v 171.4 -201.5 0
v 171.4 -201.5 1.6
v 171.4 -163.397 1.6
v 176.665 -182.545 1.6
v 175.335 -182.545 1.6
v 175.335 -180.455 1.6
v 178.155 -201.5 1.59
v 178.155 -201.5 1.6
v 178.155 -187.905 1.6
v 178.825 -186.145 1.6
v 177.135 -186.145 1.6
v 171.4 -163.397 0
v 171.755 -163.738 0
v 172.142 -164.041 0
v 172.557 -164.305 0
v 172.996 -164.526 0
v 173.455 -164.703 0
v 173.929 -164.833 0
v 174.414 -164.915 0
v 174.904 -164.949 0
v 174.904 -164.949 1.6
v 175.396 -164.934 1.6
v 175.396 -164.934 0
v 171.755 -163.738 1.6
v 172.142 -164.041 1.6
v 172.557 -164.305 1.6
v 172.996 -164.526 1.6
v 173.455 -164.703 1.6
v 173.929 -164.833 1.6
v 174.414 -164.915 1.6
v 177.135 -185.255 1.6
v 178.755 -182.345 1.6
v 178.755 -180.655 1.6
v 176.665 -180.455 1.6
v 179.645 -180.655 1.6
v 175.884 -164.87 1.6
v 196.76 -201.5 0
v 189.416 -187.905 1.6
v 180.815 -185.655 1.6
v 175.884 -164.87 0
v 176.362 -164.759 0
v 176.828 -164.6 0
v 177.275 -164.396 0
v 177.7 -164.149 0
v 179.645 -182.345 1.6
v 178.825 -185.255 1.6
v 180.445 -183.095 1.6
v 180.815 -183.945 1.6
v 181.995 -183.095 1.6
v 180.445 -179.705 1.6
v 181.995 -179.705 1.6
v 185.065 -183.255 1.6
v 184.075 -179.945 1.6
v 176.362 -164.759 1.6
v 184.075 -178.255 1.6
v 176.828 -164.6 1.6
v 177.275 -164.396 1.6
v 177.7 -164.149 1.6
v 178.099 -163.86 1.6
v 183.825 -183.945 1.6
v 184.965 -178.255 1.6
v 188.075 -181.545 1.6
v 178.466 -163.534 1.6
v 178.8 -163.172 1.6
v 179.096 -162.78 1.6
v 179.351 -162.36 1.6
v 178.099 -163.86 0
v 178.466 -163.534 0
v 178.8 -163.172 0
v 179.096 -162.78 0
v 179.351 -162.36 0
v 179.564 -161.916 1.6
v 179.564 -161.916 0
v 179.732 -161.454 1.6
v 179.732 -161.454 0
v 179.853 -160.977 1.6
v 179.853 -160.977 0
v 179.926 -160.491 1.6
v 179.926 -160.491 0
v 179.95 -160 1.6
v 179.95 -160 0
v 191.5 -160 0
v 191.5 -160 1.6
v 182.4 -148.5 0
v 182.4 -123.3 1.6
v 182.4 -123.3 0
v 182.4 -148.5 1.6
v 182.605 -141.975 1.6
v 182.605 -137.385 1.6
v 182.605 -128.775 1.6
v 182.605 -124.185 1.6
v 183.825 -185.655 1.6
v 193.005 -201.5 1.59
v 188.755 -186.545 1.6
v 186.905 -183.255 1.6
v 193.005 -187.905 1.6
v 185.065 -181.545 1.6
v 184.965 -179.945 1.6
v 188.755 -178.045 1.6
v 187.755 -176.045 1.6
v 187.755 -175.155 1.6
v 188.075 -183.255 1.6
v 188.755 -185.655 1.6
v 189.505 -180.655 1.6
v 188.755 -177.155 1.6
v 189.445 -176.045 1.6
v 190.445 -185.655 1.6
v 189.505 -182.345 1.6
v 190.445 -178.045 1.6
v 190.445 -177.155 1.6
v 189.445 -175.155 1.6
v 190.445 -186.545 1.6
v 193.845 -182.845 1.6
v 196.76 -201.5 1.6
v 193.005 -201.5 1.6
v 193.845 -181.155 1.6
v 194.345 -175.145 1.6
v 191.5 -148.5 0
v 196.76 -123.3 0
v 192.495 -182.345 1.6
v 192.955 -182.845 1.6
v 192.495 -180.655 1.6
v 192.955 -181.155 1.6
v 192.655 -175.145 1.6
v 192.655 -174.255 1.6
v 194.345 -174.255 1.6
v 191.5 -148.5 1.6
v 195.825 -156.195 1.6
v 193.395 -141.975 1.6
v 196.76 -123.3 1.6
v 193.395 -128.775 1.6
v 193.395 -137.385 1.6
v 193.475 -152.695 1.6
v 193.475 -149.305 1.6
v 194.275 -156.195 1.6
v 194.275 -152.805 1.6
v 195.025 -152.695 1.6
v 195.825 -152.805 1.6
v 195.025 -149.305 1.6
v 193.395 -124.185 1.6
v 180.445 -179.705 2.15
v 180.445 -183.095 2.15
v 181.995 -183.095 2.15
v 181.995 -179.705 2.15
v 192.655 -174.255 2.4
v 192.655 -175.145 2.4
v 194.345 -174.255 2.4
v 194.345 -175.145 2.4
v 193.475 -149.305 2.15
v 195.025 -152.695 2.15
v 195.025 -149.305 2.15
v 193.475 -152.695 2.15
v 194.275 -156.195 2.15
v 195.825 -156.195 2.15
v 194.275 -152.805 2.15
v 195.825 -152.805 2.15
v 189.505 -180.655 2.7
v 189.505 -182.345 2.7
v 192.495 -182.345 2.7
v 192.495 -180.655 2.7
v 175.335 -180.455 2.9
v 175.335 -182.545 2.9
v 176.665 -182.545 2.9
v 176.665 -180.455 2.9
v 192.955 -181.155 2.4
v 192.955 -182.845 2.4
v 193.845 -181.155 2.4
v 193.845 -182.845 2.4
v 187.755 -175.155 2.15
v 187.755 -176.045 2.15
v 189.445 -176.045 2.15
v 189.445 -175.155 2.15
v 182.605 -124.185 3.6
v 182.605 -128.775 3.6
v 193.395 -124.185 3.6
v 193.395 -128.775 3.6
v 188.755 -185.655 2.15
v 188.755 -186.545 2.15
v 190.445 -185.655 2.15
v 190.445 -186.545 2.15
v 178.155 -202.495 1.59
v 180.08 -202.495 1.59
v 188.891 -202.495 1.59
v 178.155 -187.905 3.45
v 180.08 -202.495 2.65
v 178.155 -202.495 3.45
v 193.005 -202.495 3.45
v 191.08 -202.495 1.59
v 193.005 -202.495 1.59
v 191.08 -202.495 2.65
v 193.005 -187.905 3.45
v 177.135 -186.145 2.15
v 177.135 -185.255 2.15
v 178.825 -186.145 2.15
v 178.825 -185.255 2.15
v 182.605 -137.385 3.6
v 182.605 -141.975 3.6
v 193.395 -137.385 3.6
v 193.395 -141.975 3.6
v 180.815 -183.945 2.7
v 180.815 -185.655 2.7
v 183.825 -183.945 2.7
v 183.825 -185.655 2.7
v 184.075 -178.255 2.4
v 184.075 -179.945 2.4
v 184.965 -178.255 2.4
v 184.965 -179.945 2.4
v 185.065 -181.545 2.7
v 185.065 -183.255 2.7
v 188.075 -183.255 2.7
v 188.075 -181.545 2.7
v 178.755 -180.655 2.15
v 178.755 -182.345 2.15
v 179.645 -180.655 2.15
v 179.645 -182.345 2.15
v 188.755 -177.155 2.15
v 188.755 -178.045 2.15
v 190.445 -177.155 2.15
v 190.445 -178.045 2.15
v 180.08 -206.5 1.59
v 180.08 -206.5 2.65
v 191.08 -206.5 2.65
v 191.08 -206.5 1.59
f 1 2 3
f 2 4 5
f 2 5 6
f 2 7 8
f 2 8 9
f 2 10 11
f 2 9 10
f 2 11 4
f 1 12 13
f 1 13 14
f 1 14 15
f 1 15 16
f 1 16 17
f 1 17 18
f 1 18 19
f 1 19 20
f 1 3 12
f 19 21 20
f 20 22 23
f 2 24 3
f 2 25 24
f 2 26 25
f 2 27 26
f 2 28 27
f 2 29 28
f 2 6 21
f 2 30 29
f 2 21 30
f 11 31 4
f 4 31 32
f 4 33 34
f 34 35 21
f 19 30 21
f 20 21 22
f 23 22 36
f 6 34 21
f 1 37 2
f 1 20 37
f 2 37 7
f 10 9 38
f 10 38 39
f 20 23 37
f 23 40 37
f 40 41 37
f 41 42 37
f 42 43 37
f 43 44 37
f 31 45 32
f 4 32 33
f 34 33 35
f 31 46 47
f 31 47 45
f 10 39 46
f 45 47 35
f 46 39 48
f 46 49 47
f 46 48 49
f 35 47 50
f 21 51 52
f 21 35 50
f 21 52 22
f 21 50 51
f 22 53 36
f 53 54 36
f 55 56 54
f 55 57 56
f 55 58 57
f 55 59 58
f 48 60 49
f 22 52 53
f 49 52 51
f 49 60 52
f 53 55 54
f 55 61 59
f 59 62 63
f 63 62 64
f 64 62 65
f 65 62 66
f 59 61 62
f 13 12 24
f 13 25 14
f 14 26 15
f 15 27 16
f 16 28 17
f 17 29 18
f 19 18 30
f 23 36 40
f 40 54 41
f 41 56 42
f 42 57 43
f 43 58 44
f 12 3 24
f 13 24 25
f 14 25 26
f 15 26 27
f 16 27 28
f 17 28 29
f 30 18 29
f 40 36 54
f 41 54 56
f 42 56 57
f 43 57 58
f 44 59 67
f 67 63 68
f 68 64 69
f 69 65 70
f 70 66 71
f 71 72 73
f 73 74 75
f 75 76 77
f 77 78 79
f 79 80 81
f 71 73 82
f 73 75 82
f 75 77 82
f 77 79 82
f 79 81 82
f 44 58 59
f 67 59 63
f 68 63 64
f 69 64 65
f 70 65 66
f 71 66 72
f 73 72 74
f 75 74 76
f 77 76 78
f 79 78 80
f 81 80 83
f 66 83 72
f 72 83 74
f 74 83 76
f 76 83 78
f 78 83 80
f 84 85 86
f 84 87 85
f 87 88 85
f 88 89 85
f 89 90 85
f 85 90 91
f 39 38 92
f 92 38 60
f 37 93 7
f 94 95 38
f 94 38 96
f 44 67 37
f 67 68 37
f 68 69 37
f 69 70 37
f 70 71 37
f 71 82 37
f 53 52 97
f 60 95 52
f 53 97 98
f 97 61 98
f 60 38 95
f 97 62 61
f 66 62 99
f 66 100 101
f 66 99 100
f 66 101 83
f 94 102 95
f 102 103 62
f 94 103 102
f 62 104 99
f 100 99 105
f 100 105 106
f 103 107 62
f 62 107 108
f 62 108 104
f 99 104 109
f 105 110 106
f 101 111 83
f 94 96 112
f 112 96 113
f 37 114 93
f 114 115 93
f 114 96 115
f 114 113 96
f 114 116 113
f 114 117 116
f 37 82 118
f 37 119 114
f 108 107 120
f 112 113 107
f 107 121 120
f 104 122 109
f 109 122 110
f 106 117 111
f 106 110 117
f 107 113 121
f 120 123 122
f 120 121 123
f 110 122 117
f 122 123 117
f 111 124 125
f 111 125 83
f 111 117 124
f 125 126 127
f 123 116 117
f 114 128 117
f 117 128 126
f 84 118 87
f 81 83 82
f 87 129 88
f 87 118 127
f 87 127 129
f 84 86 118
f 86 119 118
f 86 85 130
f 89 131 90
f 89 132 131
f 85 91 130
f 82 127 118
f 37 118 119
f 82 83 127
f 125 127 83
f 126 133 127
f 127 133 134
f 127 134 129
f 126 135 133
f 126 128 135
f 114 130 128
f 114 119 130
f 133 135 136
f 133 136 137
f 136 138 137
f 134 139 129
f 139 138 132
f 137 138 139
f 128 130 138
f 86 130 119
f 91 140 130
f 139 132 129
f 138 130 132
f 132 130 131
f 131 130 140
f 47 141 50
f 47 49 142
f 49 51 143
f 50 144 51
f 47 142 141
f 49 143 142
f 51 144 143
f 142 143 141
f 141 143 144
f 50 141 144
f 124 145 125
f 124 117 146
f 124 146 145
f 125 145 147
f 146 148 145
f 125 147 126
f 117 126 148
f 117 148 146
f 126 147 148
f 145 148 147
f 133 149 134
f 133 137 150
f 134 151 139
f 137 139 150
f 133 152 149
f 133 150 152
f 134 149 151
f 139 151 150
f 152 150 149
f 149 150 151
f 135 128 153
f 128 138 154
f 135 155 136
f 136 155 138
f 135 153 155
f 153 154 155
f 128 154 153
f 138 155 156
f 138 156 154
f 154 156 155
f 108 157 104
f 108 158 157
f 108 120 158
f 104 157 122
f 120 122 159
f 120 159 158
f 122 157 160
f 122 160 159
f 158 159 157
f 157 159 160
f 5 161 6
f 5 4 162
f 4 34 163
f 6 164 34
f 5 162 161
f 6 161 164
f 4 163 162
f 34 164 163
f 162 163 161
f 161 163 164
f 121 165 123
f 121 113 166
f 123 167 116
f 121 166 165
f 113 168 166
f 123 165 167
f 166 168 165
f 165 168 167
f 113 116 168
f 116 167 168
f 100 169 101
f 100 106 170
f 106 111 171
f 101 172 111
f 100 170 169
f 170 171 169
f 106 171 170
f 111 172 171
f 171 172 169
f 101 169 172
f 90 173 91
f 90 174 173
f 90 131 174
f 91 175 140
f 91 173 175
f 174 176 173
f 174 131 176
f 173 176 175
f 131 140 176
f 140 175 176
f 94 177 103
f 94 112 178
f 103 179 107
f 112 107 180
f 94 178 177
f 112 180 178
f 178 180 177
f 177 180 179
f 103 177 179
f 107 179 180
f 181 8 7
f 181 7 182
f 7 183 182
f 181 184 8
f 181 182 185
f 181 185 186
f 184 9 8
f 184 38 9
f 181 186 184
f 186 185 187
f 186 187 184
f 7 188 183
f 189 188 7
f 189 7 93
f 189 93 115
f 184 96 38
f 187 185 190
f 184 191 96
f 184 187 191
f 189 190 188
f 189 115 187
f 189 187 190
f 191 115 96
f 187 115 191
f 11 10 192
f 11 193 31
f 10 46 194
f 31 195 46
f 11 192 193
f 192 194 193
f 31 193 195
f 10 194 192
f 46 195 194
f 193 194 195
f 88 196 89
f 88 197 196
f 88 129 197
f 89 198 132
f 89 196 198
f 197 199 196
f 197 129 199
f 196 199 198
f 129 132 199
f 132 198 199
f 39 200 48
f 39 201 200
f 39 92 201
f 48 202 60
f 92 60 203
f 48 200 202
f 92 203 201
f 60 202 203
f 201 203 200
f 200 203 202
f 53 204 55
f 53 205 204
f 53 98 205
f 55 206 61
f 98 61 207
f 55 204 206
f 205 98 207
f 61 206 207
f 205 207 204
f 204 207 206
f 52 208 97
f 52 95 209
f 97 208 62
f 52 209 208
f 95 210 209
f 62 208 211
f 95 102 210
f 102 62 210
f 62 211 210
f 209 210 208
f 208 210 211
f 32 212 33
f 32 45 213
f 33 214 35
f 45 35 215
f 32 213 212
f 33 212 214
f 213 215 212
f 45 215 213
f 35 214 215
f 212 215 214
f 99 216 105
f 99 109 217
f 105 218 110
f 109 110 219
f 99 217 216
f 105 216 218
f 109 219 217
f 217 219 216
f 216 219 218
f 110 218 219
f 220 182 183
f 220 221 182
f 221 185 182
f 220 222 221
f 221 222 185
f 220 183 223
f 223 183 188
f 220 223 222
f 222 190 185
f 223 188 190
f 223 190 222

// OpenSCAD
// generated by make_mockup.py: the SD board's outline and its parts as blocks
union() {
  linear_extrude(1.6) polygon([[196.76, -201.5], [171.4, -201.5], [171.4, -163.397], [171.755, -163.738], [172.142, -164.041], [172.557, -164.305], [172.996, -164.526], [173.455, -164.703], [173.929, -164.833], [174.414, -164.915], [174.904, -164.949], [175.396, -164.934], [175.884, -164.87], [176.362, -164.759], [176.828, -164.6], [177.275, -164.396], [177.7, -164.149], [178.099, -163.86], [178.466, -163.534], [178.8, -163.172], [179.096, -162.78], [179.351, -162.36], [179.564, -161.916], [179.732, -161.454], [179.853, -160.977], [179.926, -160.491], [179.95, -160.0], [191.5, -160.0], [191.5, -148.5], [182.4, -148.5], [182.4, -123.3], [196.76, -123.3]]);
  translate([180.445, -183.095, 1.59]) cube([1.550, 3.390, 0.56]);  // R1
  translate([192.655, -175.145, 1.59]) cube([1.690, 0.890, 0.81]);  // FB1
  translate([193.475, -152.695, 1.59]) cube([1.550, 3.390, 0.56]);  // R5
  translate([194.275, -156.195, 1.59]) cube([1.550, 3.390, 0.56]);  // R6
  translate([189.505, -182.345, 1.59]) cube([2.990, 1.690, 1.11]);  // U1
  translate([175.335, -182.545, 1.59]) cube([1.330, 2.090, 1.31]);  // C1
  translate([192.955, -182.845, 1.59]) cube([0.890, 1.690, 0.81]);  // C2
  translate([187.755, -176.045, 1.59]) cube([1.690, 0.890, 0.56]);  // R8
  translate([182.605, -128.775, 1.59]) cube([10.790, 4.590, 2.01]);  // J3
  translate([188.755, -186.545, 1.59]) cube([1.690, 0.890, 0.56]);  // R2
  translate([178.155, -202.495, 1.59]) cube([14.850, 14.590, 1.86]);  // J1
  translate([177.135, -186.145, 1.59]) cube([1.690, 0.890, 0.56]);  // R3
  translate([182.605, -141.975, 1.59]) cube([10.790, 4.590, 2.01]);  // J2
  translate([180.815, -185.655, 1.59]) cube([3.010, 1.710, 1.11]);  // U3
  translate([184.075, -179.945, 1.59]) cube([0.890, 1.690, 0.81]);  // C3
  translate([185.065, -183.255, 1.59]) cube([3.010, 1.710, 1.11]);  // U2
  translate([178.755, -182.345, 1.59]) cube([0.890, 1.690, 0.56]);  // R7
  translate([188.755, -178.045, 1.59]) cube([1.690, 0.890, 0.56]);  // R4
  translate([180.080, -206.500, 1.59]) cube([11.000, 15.000, 1.06]);  // card
}
